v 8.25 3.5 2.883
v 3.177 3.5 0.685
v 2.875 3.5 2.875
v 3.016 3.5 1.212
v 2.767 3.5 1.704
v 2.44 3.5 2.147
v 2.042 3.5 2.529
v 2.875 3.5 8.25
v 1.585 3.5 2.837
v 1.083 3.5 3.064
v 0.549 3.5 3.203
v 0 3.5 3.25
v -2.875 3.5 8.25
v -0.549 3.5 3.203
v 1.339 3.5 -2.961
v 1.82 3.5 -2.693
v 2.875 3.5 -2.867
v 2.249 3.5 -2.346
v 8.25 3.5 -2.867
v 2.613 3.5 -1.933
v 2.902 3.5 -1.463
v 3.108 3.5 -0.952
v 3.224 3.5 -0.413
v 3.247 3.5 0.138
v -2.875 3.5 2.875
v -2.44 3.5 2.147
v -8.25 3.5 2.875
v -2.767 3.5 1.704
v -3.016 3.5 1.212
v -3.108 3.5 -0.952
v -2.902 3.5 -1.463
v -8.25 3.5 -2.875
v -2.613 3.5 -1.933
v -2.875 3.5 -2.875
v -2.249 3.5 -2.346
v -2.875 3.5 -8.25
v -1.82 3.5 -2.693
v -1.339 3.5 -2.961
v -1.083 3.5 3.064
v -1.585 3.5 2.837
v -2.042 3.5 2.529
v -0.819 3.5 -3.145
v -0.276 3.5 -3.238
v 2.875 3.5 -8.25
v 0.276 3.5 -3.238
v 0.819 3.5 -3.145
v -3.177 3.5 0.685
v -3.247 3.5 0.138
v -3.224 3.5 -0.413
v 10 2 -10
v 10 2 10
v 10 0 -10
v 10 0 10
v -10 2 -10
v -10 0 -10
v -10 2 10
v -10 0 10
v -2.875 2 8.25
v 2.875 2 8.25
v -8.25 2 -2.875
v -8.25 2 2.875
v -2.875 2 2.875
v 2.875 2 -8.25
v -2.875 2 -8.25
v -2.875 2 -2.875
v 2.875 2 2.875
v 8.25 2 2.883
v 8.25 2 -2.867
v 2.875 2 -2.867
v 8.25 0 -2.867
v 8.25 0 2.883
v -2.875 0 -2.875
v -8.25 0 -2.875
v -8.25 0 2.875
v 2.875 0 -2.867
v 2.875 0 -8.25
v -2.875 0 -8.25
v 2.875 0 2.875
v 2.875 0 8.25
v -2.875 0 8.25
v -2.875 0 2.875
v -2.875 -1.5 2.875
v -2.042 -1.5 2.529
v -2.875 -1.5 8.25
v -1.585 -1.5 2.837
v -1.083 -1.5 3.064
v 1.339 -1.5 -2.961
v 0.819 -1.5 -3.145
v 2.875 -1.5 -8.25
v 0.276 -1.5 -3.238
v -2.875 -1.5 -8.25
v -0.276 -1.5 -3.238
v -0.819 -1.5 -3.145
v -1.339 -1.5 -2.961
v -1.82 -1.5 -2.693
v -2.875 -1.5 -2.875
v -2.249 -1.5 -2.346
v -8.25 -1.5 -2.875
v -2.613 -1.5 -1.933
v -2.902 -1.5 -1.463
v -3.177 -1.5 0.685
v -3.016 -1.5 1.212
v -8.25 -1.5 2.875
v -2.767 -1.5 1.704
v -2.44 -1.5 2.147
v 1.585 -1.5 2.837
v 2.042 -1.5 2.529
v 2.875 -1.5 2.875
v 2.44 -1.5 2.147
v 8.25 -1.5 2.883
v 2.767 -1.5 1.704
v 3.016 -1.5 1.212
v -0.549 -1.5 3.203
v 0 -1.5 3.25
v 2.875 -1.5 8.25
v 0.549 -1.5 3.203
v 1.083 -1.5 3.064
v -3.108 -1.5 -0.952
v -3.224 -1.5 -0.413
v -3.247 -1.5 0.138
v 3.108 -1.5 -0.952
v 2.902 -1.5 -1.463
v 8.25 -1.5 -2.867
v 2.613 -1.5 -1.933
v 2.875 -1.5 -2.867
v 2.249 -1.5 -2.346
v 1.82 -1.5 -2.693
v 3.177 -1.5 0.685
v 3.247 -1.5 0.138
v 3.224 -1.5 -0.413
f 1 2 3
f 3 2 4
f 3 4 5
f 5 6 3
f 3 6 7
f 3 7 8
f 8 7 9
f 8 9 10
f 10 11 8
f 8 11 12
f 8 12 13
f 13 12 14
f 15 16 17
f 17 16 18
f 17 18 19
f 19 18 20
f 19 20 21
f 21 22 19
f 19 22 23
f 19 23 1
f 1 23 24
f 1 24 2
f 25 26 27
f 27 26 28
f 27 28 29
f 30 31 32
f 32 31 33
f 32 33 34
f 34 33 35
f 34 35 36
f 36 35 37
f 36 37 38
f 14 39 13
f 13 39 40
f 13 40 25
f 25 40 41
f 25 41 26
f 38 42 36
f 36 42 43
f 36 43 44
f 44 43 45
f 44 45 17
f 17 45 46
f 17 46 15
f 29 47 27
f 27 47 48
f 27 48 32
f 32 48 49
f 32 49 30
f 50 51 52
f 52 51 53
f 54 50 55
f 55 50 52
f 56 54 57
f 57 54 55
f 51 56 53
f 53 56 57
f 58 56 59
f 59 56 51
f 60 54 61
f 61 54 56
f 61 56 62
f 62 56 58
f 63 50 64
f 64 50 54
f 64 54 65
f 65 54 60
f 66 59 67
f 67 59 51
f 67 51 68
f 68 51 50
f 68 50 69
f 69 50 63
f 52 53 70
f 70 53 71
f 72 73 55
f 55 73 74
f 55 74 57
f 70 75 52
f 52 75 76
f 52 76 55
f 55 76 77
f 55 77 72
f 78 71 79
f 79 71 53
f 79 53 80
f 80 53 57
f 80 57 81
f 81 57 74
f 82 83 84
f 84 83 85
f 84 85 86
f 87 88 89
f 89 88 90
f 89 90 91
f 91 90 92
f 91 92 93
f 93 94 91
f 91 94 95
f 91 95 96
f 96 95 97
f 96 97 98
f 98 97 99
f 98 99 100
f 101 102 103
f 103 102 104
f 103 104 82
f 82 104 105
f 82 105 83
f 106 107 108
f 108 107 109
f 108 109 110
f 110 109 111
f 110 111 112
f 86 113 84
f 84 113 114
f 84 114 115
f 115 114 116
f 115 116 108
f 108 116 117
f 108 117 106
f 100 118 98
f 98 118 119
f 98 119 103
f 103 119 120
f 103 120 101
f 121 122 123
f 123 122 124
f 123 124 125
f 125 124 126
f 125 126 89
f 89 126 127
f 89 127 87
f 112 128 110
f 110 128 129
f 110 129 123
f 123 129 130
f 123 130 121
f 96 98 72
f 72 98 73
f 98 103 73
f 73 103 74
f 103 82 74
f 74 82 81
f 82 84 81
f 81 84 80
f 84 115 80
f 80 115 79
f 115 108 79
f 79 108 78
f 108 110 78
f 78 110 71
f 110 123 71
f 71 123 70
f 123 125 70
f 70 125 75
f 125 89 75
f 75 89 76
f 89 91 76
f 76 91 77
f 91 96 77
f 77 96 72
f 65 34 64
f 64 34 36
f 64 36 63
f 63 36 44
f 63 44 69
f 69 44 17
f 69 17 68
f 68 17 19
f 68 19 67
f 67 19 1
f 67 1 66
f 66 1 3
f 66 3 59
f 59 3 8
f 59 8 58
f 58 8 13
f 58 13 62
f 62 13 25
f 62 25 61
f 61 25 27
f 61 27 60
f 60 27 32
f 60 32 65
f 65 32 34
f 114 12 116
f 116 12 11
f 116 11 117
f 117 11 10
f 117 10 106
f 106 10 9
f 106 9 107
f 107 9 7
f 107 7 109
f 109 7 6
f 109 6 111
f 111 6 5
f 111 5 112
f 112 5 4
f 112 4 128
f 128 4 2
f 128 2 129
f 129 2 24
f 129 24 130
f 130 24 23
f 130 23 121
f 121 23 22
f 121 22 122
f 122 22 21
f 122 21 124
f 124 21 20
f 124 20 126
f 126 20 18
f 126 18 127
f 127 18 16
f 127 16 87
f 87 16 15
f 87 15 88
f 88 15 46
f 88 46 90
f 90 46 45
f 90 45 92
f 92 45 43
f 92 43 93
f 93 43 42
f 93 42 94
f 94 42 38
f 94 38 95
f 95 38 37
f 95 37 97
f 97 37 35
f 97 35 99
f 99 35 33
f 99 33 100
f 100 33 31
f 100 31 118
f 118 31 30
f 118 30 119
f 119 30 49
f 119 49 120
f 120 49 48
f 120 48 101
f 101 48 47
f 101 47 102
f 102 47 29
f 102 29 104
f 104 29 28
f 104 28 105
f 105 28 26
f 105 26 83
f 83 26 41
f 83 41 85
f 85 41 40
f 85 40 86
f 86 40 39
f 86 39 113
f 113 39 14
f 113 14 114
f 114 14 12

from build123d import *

# Parameters (mm, degrees)
SKETCH1_W                      = 20
SKETCH1_H                      = 20
BOSS_EXTRUDE1_DEPTH            = 2
BOSS_EXTRUDE3_DEPTH            = 1.5
BOSS_EXTRUDE3_DEPTH_BACK       = 3.5
TAP_DRILL_FOR_M2_2_HELICOIL1_D = 6.5


with BuildPart() as part:
    # Sketch1 → Boss-Extrude1 (new body)
    with BuildSketch(Plane(origin=(0, 0, 0), x_dir=(1, 0, 0), z_dir=(0, 1, 0))):
        Rectangle(SKETCH1_W, SKETCH1_H)
    extrude(amount=BOSS_EXTRUDE1_DEPTH)

    # Sketch3 → Boss-Extrude3 (add, two sides: drawn at the far end of the back side and taken through both)
    with BuildSketch(Plane(origin=(0, 2, 0), x_dir=(1, 0, 0), z_dir=(0, 1, 0)).offset(-BOSS_EXTRUDE3_DEPTH_BACK)):
        Polygon((-2.875, 8.25), (2.875, 8.25), (2.875, 2.867474963), (8.25, 2.867474963), (8.25, -2.882525037), (2.875, -2.875), (2.875, -8.25), (-2.875, -8.25), (-2.875, -2.875), (-8.25, -2.875), (-8.25, 2.875), (-2.875, 2.875), align=None)
    extrude(amount=BOSS_EXTRUDE3_DEPTH + BOSS_EXTRUDE3_DEPTH_BACK)

    # Tap Drill for M2.2 Helicoil1 (through all)
    with Locations(Plane.ZX.offset(3.5)):
        with Locations((0, 0)):
            Hole(TAP_DRILL_FOR_M2_2_HELICOIL1_D / 2)


solid = part.part
